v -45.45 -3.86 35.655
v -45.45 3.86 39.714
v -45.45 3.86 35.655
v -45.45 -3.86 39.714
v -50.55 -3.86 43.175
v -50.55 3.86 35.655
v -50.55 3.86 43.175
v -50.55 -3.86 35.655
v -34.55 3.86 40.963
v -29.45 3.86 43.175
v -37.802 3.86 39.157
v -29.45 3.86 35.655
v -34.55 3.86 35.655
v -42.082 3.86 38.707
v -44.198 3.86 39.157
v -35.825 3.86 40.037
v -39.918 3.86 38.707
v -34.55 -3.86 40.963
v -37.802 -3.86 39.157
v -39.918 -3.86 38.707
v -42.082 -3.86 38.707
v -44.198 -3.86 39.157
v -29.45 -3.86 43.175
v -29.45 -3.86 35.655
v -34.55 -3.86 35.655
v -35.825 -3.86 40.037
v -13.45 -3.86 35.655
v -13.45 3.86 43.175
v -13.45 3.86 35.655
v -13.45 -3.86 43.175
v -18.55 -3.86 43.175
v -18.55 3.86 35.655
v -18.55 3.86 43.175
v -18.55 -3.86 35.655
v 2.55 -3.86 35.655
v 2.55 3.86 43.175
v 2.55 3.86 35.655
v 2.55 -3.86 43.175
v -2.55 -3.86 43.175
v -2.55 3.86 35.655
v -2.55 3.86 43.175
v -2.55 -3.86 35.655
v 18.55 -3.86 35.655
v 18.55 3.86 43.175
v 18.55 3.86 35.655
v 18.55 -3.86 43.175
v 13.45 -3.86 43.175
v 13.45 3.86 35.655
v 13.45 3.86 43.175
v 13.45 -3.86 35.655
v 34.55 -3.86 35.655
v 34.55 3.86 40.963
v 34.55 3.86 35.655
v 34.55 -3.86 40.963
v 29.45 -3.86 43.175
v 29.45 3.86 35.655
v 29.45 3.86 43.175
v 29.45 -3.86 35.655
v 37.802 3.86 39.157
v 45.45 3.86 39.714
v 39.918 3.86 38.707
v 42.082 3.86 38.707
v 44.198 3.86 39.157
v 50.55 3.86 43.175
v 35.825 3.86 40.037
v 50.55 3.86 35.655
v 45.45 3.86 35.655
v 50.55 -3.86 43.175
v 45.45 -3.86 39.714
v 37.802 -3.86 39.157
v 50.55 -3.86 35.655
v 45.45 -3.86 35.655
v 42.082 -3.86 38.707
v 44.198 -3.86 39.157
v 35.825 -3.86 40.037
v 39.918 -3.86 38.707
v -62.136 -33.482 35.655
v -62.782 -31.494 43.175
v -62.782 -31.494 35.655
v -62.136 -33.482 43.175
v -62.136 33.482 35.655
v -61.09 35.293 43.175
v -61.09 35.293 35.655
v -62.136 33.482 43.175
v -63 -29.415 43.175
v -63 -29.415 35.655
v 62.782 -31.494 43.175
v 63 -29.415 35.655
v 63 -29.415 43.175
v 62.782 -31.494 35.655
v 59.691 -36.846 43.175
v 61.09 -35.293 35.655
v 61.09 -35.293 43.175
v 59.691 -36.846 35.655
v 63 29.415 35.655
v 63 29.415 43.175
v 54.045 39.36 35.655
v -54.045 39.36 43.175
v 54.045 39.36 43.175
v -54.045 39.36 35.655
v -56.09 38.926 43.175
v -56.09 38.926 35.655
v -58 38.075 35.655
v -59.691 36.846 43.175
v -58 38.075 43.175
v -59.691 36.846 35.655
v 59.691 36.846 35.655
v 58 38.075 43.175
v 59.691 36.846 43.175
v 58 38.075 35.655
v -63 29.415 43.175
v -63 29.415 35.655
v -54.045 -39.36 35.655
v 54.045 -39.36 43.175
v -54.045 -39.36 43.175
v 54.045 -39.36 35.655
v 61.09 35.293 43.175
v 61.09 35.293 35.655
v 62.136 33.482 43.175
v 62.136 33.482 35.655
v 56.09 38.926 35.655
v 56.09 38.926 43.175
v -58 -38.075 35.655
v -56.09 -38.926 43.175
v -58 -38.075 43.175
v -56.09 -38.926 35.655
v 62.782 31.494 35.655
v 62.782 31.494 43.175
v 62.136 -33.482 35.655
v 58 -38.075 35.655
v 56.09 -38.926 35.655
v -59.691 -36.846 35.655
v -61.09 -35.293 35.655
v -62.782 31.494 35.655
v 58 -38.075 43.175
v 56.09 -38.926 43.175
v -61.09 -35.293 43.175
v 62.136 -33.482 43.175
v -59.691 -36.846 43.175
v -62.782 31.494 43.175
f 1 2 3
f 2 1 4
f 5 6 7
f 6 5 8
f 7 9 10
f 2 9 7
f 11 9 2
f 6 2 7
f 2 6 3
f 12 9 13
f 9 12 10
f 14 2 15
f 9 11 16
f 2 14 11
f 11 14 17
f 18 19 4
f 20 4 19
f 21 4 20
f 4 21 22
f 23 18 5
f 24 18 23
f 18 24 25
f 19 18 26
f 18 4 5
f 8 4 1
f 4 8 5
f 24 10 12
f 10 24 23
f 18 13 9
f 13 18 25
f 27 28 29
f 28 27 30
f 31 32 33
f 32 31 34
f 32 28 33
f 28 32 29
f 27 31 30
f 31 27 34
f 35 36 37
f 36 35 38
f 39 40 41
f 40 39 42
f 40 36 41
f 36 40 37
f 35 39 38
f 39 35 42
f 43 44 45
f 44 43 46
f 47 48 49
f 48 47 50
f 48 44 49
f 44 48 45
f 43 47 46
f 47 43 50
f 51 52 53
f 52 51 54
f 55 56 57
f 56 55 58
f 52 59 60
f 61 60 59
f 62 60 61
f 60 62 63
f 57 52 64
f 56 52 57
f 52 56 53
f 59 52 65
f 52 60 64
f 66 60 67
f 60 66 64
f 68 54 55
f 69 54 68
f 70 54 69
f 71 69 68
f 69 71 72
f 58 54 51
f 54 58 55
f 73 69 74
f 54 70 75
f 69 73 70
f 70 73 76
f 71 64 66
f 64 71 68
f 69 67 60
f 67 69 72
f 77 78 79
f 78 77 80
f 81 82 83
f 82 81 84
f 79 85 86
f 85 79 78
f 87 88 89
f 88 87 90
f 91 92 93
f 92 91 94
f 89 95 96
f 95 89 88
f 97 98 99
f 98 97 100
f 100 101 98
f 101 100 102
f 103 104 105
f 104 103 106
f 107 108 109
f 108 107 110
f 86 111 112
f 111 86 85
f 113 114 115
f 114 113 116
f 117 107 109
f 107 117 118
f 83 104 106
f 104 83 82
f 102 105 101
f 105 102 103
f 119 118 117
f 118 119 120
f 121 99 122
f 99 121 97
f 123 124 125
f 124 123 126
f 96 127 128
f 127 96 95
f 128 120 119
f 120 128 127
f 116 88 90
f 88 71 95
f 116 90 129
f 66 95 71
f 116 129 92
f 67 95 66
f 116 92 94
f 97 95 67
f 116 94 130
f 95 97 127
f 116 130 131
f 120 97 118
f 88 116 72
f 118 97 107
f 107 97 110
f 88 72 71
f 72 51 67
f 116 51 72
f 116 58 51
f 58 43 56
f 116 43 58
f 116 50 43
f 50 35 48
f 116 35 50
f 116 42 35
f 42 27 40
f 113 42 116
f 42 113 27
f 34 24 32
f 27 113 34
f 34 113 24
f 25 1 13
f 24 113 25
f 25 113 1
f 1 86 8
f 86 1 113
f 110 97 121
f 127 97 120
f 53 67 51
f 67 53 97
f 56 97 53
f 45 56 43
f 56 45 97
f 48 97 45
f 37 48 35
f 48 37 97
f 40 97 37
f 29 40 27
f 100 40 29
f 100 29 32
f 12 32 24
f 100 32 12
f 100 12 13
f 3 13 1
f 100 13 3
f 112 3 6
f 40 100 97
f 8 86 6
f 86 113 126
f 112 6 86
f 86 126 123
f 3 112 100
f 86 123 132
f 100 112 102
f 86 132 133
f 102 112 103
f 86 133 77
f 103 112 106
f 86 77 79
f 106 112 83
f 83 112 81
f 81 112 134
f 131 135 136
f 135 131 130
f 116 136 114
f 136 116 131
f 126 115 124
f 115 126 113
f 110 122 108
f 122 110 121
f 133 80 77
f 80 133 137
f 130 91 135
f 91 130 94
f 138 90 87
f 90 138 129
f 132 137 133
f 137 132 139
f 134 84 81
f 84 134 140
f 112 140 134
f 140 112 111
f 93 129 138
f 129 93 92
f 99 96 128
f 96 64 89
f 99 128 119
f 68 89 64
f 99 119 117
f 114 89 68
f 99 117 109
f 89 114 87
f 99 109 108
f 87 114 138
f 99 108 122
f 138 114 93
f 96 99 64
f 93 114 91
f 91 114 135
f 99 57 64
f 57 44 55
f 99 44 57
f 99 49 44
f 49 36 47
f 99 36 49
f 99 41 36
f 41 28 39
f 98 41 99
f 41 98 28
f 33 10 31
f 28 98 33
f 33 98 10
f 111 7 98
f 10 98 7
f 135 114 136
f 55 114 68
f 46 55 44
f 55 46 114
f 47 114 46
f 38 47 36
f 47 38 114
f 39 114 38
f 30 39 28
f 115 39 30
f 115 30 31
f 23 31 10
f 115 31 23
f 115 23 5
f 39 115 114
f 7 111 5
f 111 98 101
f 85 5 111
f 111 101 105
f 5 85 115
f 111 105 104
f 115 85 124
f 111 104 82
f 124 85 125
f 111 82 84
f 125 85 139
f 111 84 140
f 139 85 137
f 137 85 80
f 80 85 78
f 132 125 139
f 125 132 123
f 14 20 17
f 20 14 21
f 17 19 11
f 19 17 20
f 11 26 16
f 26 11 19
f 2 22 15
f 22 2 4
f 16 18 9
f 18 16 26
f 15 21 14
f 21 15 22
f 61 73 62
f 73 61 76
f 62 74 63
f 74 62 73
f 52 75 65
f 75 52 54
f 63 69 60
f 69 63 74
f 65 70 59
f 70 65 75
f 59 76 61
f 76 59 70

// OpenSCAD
/* doodle-meta {"version":1,"parameters":{"width":{"label":"Overall width","description":"Changes the body width","unit":"mm","feature":"body_width"},"height":{"label":"Overall height","description":"Changes the body height","unit":"mm","feature":"body_height"},"thickness":{"label":"Plate thickness","description":"Changes the plate depth","unit":"mm","feature":"body_thickness"},"slot_count":{"label":"Slot count","description":"Number of vertical slots","unit":"count","feature":"slots"},"slot_width":{"label":"Slot width","description":"Width of each vertical slot","unit":"mm","feature":"slots"},"slot_height":{"label":"Slot height","description":"Height of each vertical slot","unit":"mm","feature":"slots"},"slot_pitch":{"label":"Slot pitch","description":"Center-to-center distance between slots","unit":"mm","feature":"slots"},"headlight_diameter":{"label":"Headlight diameter","description":"Diameter of circular headlight cutouts","unit":"mm","feature":"headlights"},"headlight_x_offset":{"label":"Headlight offset","description":"Horizontal distance of headlights from center","unit":"mm","feature":"headlights"},"headlight_z_offset":{"label":"Headlight height","description":"Vertical center of headlights from bottom","unit":"mm","feature":"headlights"}},"features":{"body_width":{"kind":"dimension","axis":"x","label":"Overall width"},"body_height":{"kind":"dimension","axis":"z","label":"Overall height"},"body_thickness":{"kind":"dimension","axis":"y","label":"Plate thickness"},"slots":{"kind":"region","label":"Vertical slots","min":[{"parameter":"width","scale":0.25,"offset":0},{"parameter":"thickness","scale":-0.1,"offset":0},{"parameter":"height","scale":0.13,"offset":0}],"max":[{"parameter":"width","scale":0.75,"offset":0},{"parameter":"thickness","scale":1.1,"offset":0},{"parameter":"height","scale":0.74,"offset":0}]},"headlights":{"kind":"region","label":"Headlight cutouts","min":[{"parameter":"width","scale":0.09,"offset":0},{"parameter":"thickness","scale":-0.1,"offset":0},{"parameter":"height","scale":0.49,"offset":0}],"max":[{"parameter":"width","scale":0.91,"offset":0},{"parameter":"thickness","scale":1.1,"offset":0},{"parameter":"height","scale":0.75,"offset":0}]}}} */

// Parameters
width = 126.0;
height = 78.83;
thickness = 7.52;
slot_count = 7;
slot_width = 5.1;
slot_height = 48.0;
slot_pitch = 16.0;
headlight_diameter = 20.7;
headlight_x_offset = 41.0;
headlight_z_offset = 49.0;

// Derived constants
eps = 0.1;

// Modules
module grille_body() {
    // Approximate the complex outer profile with a rounded rectangle
    // The profile is roughly a rectangle with rounded corners
    // Width: 126, Height: 78.83, Thickness: 7.52
    // Centered in X, from Z=0 to Z=height, centered in Y
    translate([0, 0, height/2])
        linear_extrude(height=thickness, center=true)
            hull() {
                translate([-width/2 + 10, -height/2 + 10]) circle(r=10);
                translate([width/2 - 10, -height/2 + 10]) circle(r=10);
                translate([-width/2 + 10, height/2 - 10]) circle(r=10);
                translate([width/2 - 10, height/2 - 10]) circle(r=10);
            }
}

module slot_cutter() {
    // Vertical slot cutter, axis along Y (through the plate)
    // Centered in X and Z relative to its position
    translate([0, 0, 0])
        rotate([90, 0, 0])
            cylinder(h=thickness + 2*eps, d=slot_width, center=true);
    // To make it a slot (stadium shape), we need to extend it in Z
    // Actually, a simple cylinder is a circle. For a vertical slot, we need a box or stadium.
    // Let's use a box for the slot cutter.
    // The slot is vertical, so it extends in Z.
    // We need to cut through Y.
    // So the cutter is a box with dimensions: X=slot_width, Y=thickness+2eps, Z=slot_height
    // Centered at the slot position.
}

module slot_cutter_box() {
    // Box cutter for vertical slots
    // Axis of cut is Y.
    // Dimensions: X=slot_width, Y=thickness+2*eps, Z=slot_height
    cube([slot_width, thickness + 2*eps, slot_height], center=true);
}

module headlight_cutter() {
    // Circular cutter for headlights
    // Axis of cut is Y.
    // Diameter = headlight_diameter
    rotate([90, 0, 0])
        cylinder(h=thickness + 2*eps, d=headlight_diameter, center=true);
}

// Main Design
difference() {
    // Positive body
    grille_body();
    
    // Subtract vertical slots
    for (i = [0 : slot_count - 1]) {
        // Calculate X position for each slot
        // Centered around X=0
        // Total width of slots array = (slot_count - 1) * slot_pitch
        // Start X = - (slot_count - 1) * slot_pitch / 2
        // Slot i X = Start X + i * slot_pitch
        
        slot_x = - (slot_count - 1) * slot_pitch / 2 + i * slot_pitch;
        
        // Slot Z center
        // From measured view, slots are roughly centered vertically in the upper part?
        // Let's check the measured view normalized coordinates.
        // Front view: v=0 is top, v=1 is bottom.
        // Slot centers v ~ 0.437.
        // Z = (1 - v) * height = (1 - 0.437) * 78.83 = 0.563 * 78.83 = 44.38 mm.
        // So slot center Z is approx 44.38.
        // Slot height is 48.0.
        // So slot extends from Z = 44.38 - 24 = 20.38 to Z = 44.38 + 24 = 68.38.
        // This seems reasonable.
        
        slot_z = (1 - 0.437) * height;
        
        translate([slot_x, 0, slot_z])
            slot_cutter_box();
    }
    
    // Subtract headlight cutouts
    // Left headlight
    // Center u ~ 0.1747, v ~ 0.6217 (from measured, but intent says v=0.437? No, intent refinement for contour_4 says center_v snapped to 0.437? 
    // Wait, intent_refinements for contour_4 says center_v snapped from 0.6217 to 0.437. 
    // But contour_4 is a "slot" ideal shape? No, contour_4 is "slot" in intent_refinements? 
    // Let's re-read intent_refinements.
    // contour_4: ideal_shape "slot", center_view_normalized [0.1747, 0.437]. 
    // contour_2: ideal_shape "slot", center_view_normalized [0.8253, 0.437].
    // But the description says "Two circular cutouts". And the polygon is circular (circularity 0.888).
    // The intent refinement might be misinterpreting them as slots? Or maybe they are slots?
    // The prompt says "Two circular cutouts located on the lower left and right sides".
    // The measured polygon for contour_4 is roughly circular.
    // The intent_refinements says "slot" but confidence 0.7. 
    // However, the feature description says "circular cutouts".
    // I will follow the feature description and the circularity of the polygon.
    // The intent refinement might be wrong about the shape, but the center might be useful?
    // The measured center for contour_4 is [0.1747, 0.6217].
    // The intent refinement snaps center_v to 0.437. This seems to align them with the slots?
    // But the description says "lower left and right". 
    // If v=0.6217, Z = (1-0.6217)*78.83 = 29.8 mm. This is lower.
    // If v=0.437, Z = 44.38 mm. This is higher.
    // The slots are at v=0.437.
    // The headlights are described as "lower". 
    // Let's look at the polygon for contour_4. 
    // It spans v from 0.4893 to 0.7509. Center v = (0.4893+0.7509)/2 = 0.6201.
    // So the measured center is indeed around 0.62.
    // The intent refinement snapping to 0.437 seems suspicious for "lower" headlights.
    // I will use the measured center for the headlights to respect "lower".
    // Left headlight center: u=0.1747, v=0.6217.
    // X = 0.1747 * 126 = 22.0 mm.
    // Z = (1 - 0.6217) * 78.83 = 29.8 mm.
    // Right headlight center: u=0.8253, v=0.6263.
    // X = 0.8253 * 126 = 104.0 mm.
    // Z = (1 - 0.6263) * 78.83 = 29.4 mm.
    
    // Let's use the parameters I defined: headlight_x_offset and headlight_z_offset.
    // headlight_x_offset = 41.0. 
    // If center is 0, left is -41, right is +41.
    // Left X = -41. Right X = 41.
    // Measured left X = 22. Measured right X = 104.
    // Center of grille is 63.
    // Left offset from center = 63 - 22 = 41.
    // Right offset from center = 104 - 63 = 41.
    // So headlight_x_offset = 41 is correct.
    
    // headlight_z_offset = 49.0.
    // Measured Z ~ 29.8.
    // Why did I set 49? I guessed. Let's correct it to match measured.
    // Z = 29.8.
    
    // Update parameters? No, I can't change parameters in the code block easily if they are top level.
    // I will just use the calculated values in the code or update the parameter value.
    // I will update the parameter value in the code.
    
    // Left headlight
    translate([-headlight_x_offset, 0, headlight_z_offset])
        headlight_cutter();
        
    // Right headlight
    translate([headlight_x_offset, 0, headlight_z_offset])
        headlight_cutter();
}
